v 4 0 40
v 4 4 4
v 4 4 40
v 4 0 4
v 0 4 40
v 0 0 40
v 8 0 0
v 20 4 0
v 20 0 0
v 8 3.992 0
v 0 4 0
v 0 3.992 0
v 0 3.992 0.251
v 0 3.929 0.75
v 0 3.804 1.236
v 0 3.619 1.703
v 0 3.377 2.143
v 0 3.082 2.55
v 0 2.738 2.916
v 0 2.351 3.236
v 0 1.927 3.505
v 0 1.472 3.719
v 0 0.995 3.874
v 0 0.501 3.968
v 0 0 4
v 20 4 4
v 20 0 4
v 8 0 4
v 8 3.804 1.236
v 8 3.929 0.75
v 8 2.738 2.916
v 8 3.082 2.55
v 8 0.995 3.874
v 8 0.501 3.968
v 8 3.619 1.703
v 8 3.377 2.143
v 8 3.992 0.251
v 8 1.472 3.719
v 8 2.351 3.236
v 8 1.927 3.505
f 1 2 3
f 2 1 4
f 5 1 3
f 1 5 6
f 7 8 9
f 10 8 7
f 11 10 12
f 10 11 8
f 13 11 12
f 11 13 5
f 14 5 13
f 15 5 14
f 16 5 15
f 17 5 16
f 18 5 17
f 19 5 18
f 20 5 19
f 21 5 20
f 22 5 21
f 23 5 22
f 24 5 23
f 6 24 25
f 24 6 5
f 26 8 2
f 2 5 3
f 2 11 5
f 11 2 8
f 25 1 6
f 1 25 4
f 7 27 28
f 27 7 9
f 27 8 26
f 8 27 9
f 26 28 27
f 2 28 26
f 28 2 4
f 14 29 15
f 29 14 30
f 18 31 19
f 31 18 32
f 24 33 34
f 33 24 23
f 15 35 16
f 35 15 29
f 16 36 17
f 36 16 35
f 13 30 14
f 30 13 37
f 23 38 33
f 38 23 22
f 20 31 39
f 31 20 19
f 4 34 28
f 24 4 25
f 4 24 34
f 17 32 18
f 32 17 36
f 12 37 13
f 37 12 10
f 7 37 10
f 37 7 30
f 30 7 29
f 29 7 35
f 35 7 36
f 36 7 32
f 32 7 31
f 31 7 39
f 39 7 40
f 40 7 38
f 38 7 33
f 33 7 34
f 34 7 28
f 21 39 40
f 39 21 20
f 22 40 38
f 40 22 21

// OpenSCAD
// Parameters
thickness = 4;         // Uniform thickness of the bracket
short_arm = 20;        // Length of the shorter arm
long_arm = 40;         // Length of the longer arm
corner_radius = 4;     // Radius for the rounded outer corner

module L_bracket() {
    difference() {
        union() {
            // Vertical arm
            cube([thickness, thickness, long_arm]);

            // Horizontal arm
            cube([short_arm, thickness, thickness]);
        }

        // Cut out the corner to round it
        translate([thickness - corner_radius, thickness - corner_radius, thickness - corner_radius])
            rotate([0, 90, 0])
                cylinder(h = corner_radius * 2, r = corner_radius, $fn = 50);
    }
}

// Position the bracket upright as in the image
translate([0, 0, 0])
    rotate([0, 0, 0])
        L_bracket();
